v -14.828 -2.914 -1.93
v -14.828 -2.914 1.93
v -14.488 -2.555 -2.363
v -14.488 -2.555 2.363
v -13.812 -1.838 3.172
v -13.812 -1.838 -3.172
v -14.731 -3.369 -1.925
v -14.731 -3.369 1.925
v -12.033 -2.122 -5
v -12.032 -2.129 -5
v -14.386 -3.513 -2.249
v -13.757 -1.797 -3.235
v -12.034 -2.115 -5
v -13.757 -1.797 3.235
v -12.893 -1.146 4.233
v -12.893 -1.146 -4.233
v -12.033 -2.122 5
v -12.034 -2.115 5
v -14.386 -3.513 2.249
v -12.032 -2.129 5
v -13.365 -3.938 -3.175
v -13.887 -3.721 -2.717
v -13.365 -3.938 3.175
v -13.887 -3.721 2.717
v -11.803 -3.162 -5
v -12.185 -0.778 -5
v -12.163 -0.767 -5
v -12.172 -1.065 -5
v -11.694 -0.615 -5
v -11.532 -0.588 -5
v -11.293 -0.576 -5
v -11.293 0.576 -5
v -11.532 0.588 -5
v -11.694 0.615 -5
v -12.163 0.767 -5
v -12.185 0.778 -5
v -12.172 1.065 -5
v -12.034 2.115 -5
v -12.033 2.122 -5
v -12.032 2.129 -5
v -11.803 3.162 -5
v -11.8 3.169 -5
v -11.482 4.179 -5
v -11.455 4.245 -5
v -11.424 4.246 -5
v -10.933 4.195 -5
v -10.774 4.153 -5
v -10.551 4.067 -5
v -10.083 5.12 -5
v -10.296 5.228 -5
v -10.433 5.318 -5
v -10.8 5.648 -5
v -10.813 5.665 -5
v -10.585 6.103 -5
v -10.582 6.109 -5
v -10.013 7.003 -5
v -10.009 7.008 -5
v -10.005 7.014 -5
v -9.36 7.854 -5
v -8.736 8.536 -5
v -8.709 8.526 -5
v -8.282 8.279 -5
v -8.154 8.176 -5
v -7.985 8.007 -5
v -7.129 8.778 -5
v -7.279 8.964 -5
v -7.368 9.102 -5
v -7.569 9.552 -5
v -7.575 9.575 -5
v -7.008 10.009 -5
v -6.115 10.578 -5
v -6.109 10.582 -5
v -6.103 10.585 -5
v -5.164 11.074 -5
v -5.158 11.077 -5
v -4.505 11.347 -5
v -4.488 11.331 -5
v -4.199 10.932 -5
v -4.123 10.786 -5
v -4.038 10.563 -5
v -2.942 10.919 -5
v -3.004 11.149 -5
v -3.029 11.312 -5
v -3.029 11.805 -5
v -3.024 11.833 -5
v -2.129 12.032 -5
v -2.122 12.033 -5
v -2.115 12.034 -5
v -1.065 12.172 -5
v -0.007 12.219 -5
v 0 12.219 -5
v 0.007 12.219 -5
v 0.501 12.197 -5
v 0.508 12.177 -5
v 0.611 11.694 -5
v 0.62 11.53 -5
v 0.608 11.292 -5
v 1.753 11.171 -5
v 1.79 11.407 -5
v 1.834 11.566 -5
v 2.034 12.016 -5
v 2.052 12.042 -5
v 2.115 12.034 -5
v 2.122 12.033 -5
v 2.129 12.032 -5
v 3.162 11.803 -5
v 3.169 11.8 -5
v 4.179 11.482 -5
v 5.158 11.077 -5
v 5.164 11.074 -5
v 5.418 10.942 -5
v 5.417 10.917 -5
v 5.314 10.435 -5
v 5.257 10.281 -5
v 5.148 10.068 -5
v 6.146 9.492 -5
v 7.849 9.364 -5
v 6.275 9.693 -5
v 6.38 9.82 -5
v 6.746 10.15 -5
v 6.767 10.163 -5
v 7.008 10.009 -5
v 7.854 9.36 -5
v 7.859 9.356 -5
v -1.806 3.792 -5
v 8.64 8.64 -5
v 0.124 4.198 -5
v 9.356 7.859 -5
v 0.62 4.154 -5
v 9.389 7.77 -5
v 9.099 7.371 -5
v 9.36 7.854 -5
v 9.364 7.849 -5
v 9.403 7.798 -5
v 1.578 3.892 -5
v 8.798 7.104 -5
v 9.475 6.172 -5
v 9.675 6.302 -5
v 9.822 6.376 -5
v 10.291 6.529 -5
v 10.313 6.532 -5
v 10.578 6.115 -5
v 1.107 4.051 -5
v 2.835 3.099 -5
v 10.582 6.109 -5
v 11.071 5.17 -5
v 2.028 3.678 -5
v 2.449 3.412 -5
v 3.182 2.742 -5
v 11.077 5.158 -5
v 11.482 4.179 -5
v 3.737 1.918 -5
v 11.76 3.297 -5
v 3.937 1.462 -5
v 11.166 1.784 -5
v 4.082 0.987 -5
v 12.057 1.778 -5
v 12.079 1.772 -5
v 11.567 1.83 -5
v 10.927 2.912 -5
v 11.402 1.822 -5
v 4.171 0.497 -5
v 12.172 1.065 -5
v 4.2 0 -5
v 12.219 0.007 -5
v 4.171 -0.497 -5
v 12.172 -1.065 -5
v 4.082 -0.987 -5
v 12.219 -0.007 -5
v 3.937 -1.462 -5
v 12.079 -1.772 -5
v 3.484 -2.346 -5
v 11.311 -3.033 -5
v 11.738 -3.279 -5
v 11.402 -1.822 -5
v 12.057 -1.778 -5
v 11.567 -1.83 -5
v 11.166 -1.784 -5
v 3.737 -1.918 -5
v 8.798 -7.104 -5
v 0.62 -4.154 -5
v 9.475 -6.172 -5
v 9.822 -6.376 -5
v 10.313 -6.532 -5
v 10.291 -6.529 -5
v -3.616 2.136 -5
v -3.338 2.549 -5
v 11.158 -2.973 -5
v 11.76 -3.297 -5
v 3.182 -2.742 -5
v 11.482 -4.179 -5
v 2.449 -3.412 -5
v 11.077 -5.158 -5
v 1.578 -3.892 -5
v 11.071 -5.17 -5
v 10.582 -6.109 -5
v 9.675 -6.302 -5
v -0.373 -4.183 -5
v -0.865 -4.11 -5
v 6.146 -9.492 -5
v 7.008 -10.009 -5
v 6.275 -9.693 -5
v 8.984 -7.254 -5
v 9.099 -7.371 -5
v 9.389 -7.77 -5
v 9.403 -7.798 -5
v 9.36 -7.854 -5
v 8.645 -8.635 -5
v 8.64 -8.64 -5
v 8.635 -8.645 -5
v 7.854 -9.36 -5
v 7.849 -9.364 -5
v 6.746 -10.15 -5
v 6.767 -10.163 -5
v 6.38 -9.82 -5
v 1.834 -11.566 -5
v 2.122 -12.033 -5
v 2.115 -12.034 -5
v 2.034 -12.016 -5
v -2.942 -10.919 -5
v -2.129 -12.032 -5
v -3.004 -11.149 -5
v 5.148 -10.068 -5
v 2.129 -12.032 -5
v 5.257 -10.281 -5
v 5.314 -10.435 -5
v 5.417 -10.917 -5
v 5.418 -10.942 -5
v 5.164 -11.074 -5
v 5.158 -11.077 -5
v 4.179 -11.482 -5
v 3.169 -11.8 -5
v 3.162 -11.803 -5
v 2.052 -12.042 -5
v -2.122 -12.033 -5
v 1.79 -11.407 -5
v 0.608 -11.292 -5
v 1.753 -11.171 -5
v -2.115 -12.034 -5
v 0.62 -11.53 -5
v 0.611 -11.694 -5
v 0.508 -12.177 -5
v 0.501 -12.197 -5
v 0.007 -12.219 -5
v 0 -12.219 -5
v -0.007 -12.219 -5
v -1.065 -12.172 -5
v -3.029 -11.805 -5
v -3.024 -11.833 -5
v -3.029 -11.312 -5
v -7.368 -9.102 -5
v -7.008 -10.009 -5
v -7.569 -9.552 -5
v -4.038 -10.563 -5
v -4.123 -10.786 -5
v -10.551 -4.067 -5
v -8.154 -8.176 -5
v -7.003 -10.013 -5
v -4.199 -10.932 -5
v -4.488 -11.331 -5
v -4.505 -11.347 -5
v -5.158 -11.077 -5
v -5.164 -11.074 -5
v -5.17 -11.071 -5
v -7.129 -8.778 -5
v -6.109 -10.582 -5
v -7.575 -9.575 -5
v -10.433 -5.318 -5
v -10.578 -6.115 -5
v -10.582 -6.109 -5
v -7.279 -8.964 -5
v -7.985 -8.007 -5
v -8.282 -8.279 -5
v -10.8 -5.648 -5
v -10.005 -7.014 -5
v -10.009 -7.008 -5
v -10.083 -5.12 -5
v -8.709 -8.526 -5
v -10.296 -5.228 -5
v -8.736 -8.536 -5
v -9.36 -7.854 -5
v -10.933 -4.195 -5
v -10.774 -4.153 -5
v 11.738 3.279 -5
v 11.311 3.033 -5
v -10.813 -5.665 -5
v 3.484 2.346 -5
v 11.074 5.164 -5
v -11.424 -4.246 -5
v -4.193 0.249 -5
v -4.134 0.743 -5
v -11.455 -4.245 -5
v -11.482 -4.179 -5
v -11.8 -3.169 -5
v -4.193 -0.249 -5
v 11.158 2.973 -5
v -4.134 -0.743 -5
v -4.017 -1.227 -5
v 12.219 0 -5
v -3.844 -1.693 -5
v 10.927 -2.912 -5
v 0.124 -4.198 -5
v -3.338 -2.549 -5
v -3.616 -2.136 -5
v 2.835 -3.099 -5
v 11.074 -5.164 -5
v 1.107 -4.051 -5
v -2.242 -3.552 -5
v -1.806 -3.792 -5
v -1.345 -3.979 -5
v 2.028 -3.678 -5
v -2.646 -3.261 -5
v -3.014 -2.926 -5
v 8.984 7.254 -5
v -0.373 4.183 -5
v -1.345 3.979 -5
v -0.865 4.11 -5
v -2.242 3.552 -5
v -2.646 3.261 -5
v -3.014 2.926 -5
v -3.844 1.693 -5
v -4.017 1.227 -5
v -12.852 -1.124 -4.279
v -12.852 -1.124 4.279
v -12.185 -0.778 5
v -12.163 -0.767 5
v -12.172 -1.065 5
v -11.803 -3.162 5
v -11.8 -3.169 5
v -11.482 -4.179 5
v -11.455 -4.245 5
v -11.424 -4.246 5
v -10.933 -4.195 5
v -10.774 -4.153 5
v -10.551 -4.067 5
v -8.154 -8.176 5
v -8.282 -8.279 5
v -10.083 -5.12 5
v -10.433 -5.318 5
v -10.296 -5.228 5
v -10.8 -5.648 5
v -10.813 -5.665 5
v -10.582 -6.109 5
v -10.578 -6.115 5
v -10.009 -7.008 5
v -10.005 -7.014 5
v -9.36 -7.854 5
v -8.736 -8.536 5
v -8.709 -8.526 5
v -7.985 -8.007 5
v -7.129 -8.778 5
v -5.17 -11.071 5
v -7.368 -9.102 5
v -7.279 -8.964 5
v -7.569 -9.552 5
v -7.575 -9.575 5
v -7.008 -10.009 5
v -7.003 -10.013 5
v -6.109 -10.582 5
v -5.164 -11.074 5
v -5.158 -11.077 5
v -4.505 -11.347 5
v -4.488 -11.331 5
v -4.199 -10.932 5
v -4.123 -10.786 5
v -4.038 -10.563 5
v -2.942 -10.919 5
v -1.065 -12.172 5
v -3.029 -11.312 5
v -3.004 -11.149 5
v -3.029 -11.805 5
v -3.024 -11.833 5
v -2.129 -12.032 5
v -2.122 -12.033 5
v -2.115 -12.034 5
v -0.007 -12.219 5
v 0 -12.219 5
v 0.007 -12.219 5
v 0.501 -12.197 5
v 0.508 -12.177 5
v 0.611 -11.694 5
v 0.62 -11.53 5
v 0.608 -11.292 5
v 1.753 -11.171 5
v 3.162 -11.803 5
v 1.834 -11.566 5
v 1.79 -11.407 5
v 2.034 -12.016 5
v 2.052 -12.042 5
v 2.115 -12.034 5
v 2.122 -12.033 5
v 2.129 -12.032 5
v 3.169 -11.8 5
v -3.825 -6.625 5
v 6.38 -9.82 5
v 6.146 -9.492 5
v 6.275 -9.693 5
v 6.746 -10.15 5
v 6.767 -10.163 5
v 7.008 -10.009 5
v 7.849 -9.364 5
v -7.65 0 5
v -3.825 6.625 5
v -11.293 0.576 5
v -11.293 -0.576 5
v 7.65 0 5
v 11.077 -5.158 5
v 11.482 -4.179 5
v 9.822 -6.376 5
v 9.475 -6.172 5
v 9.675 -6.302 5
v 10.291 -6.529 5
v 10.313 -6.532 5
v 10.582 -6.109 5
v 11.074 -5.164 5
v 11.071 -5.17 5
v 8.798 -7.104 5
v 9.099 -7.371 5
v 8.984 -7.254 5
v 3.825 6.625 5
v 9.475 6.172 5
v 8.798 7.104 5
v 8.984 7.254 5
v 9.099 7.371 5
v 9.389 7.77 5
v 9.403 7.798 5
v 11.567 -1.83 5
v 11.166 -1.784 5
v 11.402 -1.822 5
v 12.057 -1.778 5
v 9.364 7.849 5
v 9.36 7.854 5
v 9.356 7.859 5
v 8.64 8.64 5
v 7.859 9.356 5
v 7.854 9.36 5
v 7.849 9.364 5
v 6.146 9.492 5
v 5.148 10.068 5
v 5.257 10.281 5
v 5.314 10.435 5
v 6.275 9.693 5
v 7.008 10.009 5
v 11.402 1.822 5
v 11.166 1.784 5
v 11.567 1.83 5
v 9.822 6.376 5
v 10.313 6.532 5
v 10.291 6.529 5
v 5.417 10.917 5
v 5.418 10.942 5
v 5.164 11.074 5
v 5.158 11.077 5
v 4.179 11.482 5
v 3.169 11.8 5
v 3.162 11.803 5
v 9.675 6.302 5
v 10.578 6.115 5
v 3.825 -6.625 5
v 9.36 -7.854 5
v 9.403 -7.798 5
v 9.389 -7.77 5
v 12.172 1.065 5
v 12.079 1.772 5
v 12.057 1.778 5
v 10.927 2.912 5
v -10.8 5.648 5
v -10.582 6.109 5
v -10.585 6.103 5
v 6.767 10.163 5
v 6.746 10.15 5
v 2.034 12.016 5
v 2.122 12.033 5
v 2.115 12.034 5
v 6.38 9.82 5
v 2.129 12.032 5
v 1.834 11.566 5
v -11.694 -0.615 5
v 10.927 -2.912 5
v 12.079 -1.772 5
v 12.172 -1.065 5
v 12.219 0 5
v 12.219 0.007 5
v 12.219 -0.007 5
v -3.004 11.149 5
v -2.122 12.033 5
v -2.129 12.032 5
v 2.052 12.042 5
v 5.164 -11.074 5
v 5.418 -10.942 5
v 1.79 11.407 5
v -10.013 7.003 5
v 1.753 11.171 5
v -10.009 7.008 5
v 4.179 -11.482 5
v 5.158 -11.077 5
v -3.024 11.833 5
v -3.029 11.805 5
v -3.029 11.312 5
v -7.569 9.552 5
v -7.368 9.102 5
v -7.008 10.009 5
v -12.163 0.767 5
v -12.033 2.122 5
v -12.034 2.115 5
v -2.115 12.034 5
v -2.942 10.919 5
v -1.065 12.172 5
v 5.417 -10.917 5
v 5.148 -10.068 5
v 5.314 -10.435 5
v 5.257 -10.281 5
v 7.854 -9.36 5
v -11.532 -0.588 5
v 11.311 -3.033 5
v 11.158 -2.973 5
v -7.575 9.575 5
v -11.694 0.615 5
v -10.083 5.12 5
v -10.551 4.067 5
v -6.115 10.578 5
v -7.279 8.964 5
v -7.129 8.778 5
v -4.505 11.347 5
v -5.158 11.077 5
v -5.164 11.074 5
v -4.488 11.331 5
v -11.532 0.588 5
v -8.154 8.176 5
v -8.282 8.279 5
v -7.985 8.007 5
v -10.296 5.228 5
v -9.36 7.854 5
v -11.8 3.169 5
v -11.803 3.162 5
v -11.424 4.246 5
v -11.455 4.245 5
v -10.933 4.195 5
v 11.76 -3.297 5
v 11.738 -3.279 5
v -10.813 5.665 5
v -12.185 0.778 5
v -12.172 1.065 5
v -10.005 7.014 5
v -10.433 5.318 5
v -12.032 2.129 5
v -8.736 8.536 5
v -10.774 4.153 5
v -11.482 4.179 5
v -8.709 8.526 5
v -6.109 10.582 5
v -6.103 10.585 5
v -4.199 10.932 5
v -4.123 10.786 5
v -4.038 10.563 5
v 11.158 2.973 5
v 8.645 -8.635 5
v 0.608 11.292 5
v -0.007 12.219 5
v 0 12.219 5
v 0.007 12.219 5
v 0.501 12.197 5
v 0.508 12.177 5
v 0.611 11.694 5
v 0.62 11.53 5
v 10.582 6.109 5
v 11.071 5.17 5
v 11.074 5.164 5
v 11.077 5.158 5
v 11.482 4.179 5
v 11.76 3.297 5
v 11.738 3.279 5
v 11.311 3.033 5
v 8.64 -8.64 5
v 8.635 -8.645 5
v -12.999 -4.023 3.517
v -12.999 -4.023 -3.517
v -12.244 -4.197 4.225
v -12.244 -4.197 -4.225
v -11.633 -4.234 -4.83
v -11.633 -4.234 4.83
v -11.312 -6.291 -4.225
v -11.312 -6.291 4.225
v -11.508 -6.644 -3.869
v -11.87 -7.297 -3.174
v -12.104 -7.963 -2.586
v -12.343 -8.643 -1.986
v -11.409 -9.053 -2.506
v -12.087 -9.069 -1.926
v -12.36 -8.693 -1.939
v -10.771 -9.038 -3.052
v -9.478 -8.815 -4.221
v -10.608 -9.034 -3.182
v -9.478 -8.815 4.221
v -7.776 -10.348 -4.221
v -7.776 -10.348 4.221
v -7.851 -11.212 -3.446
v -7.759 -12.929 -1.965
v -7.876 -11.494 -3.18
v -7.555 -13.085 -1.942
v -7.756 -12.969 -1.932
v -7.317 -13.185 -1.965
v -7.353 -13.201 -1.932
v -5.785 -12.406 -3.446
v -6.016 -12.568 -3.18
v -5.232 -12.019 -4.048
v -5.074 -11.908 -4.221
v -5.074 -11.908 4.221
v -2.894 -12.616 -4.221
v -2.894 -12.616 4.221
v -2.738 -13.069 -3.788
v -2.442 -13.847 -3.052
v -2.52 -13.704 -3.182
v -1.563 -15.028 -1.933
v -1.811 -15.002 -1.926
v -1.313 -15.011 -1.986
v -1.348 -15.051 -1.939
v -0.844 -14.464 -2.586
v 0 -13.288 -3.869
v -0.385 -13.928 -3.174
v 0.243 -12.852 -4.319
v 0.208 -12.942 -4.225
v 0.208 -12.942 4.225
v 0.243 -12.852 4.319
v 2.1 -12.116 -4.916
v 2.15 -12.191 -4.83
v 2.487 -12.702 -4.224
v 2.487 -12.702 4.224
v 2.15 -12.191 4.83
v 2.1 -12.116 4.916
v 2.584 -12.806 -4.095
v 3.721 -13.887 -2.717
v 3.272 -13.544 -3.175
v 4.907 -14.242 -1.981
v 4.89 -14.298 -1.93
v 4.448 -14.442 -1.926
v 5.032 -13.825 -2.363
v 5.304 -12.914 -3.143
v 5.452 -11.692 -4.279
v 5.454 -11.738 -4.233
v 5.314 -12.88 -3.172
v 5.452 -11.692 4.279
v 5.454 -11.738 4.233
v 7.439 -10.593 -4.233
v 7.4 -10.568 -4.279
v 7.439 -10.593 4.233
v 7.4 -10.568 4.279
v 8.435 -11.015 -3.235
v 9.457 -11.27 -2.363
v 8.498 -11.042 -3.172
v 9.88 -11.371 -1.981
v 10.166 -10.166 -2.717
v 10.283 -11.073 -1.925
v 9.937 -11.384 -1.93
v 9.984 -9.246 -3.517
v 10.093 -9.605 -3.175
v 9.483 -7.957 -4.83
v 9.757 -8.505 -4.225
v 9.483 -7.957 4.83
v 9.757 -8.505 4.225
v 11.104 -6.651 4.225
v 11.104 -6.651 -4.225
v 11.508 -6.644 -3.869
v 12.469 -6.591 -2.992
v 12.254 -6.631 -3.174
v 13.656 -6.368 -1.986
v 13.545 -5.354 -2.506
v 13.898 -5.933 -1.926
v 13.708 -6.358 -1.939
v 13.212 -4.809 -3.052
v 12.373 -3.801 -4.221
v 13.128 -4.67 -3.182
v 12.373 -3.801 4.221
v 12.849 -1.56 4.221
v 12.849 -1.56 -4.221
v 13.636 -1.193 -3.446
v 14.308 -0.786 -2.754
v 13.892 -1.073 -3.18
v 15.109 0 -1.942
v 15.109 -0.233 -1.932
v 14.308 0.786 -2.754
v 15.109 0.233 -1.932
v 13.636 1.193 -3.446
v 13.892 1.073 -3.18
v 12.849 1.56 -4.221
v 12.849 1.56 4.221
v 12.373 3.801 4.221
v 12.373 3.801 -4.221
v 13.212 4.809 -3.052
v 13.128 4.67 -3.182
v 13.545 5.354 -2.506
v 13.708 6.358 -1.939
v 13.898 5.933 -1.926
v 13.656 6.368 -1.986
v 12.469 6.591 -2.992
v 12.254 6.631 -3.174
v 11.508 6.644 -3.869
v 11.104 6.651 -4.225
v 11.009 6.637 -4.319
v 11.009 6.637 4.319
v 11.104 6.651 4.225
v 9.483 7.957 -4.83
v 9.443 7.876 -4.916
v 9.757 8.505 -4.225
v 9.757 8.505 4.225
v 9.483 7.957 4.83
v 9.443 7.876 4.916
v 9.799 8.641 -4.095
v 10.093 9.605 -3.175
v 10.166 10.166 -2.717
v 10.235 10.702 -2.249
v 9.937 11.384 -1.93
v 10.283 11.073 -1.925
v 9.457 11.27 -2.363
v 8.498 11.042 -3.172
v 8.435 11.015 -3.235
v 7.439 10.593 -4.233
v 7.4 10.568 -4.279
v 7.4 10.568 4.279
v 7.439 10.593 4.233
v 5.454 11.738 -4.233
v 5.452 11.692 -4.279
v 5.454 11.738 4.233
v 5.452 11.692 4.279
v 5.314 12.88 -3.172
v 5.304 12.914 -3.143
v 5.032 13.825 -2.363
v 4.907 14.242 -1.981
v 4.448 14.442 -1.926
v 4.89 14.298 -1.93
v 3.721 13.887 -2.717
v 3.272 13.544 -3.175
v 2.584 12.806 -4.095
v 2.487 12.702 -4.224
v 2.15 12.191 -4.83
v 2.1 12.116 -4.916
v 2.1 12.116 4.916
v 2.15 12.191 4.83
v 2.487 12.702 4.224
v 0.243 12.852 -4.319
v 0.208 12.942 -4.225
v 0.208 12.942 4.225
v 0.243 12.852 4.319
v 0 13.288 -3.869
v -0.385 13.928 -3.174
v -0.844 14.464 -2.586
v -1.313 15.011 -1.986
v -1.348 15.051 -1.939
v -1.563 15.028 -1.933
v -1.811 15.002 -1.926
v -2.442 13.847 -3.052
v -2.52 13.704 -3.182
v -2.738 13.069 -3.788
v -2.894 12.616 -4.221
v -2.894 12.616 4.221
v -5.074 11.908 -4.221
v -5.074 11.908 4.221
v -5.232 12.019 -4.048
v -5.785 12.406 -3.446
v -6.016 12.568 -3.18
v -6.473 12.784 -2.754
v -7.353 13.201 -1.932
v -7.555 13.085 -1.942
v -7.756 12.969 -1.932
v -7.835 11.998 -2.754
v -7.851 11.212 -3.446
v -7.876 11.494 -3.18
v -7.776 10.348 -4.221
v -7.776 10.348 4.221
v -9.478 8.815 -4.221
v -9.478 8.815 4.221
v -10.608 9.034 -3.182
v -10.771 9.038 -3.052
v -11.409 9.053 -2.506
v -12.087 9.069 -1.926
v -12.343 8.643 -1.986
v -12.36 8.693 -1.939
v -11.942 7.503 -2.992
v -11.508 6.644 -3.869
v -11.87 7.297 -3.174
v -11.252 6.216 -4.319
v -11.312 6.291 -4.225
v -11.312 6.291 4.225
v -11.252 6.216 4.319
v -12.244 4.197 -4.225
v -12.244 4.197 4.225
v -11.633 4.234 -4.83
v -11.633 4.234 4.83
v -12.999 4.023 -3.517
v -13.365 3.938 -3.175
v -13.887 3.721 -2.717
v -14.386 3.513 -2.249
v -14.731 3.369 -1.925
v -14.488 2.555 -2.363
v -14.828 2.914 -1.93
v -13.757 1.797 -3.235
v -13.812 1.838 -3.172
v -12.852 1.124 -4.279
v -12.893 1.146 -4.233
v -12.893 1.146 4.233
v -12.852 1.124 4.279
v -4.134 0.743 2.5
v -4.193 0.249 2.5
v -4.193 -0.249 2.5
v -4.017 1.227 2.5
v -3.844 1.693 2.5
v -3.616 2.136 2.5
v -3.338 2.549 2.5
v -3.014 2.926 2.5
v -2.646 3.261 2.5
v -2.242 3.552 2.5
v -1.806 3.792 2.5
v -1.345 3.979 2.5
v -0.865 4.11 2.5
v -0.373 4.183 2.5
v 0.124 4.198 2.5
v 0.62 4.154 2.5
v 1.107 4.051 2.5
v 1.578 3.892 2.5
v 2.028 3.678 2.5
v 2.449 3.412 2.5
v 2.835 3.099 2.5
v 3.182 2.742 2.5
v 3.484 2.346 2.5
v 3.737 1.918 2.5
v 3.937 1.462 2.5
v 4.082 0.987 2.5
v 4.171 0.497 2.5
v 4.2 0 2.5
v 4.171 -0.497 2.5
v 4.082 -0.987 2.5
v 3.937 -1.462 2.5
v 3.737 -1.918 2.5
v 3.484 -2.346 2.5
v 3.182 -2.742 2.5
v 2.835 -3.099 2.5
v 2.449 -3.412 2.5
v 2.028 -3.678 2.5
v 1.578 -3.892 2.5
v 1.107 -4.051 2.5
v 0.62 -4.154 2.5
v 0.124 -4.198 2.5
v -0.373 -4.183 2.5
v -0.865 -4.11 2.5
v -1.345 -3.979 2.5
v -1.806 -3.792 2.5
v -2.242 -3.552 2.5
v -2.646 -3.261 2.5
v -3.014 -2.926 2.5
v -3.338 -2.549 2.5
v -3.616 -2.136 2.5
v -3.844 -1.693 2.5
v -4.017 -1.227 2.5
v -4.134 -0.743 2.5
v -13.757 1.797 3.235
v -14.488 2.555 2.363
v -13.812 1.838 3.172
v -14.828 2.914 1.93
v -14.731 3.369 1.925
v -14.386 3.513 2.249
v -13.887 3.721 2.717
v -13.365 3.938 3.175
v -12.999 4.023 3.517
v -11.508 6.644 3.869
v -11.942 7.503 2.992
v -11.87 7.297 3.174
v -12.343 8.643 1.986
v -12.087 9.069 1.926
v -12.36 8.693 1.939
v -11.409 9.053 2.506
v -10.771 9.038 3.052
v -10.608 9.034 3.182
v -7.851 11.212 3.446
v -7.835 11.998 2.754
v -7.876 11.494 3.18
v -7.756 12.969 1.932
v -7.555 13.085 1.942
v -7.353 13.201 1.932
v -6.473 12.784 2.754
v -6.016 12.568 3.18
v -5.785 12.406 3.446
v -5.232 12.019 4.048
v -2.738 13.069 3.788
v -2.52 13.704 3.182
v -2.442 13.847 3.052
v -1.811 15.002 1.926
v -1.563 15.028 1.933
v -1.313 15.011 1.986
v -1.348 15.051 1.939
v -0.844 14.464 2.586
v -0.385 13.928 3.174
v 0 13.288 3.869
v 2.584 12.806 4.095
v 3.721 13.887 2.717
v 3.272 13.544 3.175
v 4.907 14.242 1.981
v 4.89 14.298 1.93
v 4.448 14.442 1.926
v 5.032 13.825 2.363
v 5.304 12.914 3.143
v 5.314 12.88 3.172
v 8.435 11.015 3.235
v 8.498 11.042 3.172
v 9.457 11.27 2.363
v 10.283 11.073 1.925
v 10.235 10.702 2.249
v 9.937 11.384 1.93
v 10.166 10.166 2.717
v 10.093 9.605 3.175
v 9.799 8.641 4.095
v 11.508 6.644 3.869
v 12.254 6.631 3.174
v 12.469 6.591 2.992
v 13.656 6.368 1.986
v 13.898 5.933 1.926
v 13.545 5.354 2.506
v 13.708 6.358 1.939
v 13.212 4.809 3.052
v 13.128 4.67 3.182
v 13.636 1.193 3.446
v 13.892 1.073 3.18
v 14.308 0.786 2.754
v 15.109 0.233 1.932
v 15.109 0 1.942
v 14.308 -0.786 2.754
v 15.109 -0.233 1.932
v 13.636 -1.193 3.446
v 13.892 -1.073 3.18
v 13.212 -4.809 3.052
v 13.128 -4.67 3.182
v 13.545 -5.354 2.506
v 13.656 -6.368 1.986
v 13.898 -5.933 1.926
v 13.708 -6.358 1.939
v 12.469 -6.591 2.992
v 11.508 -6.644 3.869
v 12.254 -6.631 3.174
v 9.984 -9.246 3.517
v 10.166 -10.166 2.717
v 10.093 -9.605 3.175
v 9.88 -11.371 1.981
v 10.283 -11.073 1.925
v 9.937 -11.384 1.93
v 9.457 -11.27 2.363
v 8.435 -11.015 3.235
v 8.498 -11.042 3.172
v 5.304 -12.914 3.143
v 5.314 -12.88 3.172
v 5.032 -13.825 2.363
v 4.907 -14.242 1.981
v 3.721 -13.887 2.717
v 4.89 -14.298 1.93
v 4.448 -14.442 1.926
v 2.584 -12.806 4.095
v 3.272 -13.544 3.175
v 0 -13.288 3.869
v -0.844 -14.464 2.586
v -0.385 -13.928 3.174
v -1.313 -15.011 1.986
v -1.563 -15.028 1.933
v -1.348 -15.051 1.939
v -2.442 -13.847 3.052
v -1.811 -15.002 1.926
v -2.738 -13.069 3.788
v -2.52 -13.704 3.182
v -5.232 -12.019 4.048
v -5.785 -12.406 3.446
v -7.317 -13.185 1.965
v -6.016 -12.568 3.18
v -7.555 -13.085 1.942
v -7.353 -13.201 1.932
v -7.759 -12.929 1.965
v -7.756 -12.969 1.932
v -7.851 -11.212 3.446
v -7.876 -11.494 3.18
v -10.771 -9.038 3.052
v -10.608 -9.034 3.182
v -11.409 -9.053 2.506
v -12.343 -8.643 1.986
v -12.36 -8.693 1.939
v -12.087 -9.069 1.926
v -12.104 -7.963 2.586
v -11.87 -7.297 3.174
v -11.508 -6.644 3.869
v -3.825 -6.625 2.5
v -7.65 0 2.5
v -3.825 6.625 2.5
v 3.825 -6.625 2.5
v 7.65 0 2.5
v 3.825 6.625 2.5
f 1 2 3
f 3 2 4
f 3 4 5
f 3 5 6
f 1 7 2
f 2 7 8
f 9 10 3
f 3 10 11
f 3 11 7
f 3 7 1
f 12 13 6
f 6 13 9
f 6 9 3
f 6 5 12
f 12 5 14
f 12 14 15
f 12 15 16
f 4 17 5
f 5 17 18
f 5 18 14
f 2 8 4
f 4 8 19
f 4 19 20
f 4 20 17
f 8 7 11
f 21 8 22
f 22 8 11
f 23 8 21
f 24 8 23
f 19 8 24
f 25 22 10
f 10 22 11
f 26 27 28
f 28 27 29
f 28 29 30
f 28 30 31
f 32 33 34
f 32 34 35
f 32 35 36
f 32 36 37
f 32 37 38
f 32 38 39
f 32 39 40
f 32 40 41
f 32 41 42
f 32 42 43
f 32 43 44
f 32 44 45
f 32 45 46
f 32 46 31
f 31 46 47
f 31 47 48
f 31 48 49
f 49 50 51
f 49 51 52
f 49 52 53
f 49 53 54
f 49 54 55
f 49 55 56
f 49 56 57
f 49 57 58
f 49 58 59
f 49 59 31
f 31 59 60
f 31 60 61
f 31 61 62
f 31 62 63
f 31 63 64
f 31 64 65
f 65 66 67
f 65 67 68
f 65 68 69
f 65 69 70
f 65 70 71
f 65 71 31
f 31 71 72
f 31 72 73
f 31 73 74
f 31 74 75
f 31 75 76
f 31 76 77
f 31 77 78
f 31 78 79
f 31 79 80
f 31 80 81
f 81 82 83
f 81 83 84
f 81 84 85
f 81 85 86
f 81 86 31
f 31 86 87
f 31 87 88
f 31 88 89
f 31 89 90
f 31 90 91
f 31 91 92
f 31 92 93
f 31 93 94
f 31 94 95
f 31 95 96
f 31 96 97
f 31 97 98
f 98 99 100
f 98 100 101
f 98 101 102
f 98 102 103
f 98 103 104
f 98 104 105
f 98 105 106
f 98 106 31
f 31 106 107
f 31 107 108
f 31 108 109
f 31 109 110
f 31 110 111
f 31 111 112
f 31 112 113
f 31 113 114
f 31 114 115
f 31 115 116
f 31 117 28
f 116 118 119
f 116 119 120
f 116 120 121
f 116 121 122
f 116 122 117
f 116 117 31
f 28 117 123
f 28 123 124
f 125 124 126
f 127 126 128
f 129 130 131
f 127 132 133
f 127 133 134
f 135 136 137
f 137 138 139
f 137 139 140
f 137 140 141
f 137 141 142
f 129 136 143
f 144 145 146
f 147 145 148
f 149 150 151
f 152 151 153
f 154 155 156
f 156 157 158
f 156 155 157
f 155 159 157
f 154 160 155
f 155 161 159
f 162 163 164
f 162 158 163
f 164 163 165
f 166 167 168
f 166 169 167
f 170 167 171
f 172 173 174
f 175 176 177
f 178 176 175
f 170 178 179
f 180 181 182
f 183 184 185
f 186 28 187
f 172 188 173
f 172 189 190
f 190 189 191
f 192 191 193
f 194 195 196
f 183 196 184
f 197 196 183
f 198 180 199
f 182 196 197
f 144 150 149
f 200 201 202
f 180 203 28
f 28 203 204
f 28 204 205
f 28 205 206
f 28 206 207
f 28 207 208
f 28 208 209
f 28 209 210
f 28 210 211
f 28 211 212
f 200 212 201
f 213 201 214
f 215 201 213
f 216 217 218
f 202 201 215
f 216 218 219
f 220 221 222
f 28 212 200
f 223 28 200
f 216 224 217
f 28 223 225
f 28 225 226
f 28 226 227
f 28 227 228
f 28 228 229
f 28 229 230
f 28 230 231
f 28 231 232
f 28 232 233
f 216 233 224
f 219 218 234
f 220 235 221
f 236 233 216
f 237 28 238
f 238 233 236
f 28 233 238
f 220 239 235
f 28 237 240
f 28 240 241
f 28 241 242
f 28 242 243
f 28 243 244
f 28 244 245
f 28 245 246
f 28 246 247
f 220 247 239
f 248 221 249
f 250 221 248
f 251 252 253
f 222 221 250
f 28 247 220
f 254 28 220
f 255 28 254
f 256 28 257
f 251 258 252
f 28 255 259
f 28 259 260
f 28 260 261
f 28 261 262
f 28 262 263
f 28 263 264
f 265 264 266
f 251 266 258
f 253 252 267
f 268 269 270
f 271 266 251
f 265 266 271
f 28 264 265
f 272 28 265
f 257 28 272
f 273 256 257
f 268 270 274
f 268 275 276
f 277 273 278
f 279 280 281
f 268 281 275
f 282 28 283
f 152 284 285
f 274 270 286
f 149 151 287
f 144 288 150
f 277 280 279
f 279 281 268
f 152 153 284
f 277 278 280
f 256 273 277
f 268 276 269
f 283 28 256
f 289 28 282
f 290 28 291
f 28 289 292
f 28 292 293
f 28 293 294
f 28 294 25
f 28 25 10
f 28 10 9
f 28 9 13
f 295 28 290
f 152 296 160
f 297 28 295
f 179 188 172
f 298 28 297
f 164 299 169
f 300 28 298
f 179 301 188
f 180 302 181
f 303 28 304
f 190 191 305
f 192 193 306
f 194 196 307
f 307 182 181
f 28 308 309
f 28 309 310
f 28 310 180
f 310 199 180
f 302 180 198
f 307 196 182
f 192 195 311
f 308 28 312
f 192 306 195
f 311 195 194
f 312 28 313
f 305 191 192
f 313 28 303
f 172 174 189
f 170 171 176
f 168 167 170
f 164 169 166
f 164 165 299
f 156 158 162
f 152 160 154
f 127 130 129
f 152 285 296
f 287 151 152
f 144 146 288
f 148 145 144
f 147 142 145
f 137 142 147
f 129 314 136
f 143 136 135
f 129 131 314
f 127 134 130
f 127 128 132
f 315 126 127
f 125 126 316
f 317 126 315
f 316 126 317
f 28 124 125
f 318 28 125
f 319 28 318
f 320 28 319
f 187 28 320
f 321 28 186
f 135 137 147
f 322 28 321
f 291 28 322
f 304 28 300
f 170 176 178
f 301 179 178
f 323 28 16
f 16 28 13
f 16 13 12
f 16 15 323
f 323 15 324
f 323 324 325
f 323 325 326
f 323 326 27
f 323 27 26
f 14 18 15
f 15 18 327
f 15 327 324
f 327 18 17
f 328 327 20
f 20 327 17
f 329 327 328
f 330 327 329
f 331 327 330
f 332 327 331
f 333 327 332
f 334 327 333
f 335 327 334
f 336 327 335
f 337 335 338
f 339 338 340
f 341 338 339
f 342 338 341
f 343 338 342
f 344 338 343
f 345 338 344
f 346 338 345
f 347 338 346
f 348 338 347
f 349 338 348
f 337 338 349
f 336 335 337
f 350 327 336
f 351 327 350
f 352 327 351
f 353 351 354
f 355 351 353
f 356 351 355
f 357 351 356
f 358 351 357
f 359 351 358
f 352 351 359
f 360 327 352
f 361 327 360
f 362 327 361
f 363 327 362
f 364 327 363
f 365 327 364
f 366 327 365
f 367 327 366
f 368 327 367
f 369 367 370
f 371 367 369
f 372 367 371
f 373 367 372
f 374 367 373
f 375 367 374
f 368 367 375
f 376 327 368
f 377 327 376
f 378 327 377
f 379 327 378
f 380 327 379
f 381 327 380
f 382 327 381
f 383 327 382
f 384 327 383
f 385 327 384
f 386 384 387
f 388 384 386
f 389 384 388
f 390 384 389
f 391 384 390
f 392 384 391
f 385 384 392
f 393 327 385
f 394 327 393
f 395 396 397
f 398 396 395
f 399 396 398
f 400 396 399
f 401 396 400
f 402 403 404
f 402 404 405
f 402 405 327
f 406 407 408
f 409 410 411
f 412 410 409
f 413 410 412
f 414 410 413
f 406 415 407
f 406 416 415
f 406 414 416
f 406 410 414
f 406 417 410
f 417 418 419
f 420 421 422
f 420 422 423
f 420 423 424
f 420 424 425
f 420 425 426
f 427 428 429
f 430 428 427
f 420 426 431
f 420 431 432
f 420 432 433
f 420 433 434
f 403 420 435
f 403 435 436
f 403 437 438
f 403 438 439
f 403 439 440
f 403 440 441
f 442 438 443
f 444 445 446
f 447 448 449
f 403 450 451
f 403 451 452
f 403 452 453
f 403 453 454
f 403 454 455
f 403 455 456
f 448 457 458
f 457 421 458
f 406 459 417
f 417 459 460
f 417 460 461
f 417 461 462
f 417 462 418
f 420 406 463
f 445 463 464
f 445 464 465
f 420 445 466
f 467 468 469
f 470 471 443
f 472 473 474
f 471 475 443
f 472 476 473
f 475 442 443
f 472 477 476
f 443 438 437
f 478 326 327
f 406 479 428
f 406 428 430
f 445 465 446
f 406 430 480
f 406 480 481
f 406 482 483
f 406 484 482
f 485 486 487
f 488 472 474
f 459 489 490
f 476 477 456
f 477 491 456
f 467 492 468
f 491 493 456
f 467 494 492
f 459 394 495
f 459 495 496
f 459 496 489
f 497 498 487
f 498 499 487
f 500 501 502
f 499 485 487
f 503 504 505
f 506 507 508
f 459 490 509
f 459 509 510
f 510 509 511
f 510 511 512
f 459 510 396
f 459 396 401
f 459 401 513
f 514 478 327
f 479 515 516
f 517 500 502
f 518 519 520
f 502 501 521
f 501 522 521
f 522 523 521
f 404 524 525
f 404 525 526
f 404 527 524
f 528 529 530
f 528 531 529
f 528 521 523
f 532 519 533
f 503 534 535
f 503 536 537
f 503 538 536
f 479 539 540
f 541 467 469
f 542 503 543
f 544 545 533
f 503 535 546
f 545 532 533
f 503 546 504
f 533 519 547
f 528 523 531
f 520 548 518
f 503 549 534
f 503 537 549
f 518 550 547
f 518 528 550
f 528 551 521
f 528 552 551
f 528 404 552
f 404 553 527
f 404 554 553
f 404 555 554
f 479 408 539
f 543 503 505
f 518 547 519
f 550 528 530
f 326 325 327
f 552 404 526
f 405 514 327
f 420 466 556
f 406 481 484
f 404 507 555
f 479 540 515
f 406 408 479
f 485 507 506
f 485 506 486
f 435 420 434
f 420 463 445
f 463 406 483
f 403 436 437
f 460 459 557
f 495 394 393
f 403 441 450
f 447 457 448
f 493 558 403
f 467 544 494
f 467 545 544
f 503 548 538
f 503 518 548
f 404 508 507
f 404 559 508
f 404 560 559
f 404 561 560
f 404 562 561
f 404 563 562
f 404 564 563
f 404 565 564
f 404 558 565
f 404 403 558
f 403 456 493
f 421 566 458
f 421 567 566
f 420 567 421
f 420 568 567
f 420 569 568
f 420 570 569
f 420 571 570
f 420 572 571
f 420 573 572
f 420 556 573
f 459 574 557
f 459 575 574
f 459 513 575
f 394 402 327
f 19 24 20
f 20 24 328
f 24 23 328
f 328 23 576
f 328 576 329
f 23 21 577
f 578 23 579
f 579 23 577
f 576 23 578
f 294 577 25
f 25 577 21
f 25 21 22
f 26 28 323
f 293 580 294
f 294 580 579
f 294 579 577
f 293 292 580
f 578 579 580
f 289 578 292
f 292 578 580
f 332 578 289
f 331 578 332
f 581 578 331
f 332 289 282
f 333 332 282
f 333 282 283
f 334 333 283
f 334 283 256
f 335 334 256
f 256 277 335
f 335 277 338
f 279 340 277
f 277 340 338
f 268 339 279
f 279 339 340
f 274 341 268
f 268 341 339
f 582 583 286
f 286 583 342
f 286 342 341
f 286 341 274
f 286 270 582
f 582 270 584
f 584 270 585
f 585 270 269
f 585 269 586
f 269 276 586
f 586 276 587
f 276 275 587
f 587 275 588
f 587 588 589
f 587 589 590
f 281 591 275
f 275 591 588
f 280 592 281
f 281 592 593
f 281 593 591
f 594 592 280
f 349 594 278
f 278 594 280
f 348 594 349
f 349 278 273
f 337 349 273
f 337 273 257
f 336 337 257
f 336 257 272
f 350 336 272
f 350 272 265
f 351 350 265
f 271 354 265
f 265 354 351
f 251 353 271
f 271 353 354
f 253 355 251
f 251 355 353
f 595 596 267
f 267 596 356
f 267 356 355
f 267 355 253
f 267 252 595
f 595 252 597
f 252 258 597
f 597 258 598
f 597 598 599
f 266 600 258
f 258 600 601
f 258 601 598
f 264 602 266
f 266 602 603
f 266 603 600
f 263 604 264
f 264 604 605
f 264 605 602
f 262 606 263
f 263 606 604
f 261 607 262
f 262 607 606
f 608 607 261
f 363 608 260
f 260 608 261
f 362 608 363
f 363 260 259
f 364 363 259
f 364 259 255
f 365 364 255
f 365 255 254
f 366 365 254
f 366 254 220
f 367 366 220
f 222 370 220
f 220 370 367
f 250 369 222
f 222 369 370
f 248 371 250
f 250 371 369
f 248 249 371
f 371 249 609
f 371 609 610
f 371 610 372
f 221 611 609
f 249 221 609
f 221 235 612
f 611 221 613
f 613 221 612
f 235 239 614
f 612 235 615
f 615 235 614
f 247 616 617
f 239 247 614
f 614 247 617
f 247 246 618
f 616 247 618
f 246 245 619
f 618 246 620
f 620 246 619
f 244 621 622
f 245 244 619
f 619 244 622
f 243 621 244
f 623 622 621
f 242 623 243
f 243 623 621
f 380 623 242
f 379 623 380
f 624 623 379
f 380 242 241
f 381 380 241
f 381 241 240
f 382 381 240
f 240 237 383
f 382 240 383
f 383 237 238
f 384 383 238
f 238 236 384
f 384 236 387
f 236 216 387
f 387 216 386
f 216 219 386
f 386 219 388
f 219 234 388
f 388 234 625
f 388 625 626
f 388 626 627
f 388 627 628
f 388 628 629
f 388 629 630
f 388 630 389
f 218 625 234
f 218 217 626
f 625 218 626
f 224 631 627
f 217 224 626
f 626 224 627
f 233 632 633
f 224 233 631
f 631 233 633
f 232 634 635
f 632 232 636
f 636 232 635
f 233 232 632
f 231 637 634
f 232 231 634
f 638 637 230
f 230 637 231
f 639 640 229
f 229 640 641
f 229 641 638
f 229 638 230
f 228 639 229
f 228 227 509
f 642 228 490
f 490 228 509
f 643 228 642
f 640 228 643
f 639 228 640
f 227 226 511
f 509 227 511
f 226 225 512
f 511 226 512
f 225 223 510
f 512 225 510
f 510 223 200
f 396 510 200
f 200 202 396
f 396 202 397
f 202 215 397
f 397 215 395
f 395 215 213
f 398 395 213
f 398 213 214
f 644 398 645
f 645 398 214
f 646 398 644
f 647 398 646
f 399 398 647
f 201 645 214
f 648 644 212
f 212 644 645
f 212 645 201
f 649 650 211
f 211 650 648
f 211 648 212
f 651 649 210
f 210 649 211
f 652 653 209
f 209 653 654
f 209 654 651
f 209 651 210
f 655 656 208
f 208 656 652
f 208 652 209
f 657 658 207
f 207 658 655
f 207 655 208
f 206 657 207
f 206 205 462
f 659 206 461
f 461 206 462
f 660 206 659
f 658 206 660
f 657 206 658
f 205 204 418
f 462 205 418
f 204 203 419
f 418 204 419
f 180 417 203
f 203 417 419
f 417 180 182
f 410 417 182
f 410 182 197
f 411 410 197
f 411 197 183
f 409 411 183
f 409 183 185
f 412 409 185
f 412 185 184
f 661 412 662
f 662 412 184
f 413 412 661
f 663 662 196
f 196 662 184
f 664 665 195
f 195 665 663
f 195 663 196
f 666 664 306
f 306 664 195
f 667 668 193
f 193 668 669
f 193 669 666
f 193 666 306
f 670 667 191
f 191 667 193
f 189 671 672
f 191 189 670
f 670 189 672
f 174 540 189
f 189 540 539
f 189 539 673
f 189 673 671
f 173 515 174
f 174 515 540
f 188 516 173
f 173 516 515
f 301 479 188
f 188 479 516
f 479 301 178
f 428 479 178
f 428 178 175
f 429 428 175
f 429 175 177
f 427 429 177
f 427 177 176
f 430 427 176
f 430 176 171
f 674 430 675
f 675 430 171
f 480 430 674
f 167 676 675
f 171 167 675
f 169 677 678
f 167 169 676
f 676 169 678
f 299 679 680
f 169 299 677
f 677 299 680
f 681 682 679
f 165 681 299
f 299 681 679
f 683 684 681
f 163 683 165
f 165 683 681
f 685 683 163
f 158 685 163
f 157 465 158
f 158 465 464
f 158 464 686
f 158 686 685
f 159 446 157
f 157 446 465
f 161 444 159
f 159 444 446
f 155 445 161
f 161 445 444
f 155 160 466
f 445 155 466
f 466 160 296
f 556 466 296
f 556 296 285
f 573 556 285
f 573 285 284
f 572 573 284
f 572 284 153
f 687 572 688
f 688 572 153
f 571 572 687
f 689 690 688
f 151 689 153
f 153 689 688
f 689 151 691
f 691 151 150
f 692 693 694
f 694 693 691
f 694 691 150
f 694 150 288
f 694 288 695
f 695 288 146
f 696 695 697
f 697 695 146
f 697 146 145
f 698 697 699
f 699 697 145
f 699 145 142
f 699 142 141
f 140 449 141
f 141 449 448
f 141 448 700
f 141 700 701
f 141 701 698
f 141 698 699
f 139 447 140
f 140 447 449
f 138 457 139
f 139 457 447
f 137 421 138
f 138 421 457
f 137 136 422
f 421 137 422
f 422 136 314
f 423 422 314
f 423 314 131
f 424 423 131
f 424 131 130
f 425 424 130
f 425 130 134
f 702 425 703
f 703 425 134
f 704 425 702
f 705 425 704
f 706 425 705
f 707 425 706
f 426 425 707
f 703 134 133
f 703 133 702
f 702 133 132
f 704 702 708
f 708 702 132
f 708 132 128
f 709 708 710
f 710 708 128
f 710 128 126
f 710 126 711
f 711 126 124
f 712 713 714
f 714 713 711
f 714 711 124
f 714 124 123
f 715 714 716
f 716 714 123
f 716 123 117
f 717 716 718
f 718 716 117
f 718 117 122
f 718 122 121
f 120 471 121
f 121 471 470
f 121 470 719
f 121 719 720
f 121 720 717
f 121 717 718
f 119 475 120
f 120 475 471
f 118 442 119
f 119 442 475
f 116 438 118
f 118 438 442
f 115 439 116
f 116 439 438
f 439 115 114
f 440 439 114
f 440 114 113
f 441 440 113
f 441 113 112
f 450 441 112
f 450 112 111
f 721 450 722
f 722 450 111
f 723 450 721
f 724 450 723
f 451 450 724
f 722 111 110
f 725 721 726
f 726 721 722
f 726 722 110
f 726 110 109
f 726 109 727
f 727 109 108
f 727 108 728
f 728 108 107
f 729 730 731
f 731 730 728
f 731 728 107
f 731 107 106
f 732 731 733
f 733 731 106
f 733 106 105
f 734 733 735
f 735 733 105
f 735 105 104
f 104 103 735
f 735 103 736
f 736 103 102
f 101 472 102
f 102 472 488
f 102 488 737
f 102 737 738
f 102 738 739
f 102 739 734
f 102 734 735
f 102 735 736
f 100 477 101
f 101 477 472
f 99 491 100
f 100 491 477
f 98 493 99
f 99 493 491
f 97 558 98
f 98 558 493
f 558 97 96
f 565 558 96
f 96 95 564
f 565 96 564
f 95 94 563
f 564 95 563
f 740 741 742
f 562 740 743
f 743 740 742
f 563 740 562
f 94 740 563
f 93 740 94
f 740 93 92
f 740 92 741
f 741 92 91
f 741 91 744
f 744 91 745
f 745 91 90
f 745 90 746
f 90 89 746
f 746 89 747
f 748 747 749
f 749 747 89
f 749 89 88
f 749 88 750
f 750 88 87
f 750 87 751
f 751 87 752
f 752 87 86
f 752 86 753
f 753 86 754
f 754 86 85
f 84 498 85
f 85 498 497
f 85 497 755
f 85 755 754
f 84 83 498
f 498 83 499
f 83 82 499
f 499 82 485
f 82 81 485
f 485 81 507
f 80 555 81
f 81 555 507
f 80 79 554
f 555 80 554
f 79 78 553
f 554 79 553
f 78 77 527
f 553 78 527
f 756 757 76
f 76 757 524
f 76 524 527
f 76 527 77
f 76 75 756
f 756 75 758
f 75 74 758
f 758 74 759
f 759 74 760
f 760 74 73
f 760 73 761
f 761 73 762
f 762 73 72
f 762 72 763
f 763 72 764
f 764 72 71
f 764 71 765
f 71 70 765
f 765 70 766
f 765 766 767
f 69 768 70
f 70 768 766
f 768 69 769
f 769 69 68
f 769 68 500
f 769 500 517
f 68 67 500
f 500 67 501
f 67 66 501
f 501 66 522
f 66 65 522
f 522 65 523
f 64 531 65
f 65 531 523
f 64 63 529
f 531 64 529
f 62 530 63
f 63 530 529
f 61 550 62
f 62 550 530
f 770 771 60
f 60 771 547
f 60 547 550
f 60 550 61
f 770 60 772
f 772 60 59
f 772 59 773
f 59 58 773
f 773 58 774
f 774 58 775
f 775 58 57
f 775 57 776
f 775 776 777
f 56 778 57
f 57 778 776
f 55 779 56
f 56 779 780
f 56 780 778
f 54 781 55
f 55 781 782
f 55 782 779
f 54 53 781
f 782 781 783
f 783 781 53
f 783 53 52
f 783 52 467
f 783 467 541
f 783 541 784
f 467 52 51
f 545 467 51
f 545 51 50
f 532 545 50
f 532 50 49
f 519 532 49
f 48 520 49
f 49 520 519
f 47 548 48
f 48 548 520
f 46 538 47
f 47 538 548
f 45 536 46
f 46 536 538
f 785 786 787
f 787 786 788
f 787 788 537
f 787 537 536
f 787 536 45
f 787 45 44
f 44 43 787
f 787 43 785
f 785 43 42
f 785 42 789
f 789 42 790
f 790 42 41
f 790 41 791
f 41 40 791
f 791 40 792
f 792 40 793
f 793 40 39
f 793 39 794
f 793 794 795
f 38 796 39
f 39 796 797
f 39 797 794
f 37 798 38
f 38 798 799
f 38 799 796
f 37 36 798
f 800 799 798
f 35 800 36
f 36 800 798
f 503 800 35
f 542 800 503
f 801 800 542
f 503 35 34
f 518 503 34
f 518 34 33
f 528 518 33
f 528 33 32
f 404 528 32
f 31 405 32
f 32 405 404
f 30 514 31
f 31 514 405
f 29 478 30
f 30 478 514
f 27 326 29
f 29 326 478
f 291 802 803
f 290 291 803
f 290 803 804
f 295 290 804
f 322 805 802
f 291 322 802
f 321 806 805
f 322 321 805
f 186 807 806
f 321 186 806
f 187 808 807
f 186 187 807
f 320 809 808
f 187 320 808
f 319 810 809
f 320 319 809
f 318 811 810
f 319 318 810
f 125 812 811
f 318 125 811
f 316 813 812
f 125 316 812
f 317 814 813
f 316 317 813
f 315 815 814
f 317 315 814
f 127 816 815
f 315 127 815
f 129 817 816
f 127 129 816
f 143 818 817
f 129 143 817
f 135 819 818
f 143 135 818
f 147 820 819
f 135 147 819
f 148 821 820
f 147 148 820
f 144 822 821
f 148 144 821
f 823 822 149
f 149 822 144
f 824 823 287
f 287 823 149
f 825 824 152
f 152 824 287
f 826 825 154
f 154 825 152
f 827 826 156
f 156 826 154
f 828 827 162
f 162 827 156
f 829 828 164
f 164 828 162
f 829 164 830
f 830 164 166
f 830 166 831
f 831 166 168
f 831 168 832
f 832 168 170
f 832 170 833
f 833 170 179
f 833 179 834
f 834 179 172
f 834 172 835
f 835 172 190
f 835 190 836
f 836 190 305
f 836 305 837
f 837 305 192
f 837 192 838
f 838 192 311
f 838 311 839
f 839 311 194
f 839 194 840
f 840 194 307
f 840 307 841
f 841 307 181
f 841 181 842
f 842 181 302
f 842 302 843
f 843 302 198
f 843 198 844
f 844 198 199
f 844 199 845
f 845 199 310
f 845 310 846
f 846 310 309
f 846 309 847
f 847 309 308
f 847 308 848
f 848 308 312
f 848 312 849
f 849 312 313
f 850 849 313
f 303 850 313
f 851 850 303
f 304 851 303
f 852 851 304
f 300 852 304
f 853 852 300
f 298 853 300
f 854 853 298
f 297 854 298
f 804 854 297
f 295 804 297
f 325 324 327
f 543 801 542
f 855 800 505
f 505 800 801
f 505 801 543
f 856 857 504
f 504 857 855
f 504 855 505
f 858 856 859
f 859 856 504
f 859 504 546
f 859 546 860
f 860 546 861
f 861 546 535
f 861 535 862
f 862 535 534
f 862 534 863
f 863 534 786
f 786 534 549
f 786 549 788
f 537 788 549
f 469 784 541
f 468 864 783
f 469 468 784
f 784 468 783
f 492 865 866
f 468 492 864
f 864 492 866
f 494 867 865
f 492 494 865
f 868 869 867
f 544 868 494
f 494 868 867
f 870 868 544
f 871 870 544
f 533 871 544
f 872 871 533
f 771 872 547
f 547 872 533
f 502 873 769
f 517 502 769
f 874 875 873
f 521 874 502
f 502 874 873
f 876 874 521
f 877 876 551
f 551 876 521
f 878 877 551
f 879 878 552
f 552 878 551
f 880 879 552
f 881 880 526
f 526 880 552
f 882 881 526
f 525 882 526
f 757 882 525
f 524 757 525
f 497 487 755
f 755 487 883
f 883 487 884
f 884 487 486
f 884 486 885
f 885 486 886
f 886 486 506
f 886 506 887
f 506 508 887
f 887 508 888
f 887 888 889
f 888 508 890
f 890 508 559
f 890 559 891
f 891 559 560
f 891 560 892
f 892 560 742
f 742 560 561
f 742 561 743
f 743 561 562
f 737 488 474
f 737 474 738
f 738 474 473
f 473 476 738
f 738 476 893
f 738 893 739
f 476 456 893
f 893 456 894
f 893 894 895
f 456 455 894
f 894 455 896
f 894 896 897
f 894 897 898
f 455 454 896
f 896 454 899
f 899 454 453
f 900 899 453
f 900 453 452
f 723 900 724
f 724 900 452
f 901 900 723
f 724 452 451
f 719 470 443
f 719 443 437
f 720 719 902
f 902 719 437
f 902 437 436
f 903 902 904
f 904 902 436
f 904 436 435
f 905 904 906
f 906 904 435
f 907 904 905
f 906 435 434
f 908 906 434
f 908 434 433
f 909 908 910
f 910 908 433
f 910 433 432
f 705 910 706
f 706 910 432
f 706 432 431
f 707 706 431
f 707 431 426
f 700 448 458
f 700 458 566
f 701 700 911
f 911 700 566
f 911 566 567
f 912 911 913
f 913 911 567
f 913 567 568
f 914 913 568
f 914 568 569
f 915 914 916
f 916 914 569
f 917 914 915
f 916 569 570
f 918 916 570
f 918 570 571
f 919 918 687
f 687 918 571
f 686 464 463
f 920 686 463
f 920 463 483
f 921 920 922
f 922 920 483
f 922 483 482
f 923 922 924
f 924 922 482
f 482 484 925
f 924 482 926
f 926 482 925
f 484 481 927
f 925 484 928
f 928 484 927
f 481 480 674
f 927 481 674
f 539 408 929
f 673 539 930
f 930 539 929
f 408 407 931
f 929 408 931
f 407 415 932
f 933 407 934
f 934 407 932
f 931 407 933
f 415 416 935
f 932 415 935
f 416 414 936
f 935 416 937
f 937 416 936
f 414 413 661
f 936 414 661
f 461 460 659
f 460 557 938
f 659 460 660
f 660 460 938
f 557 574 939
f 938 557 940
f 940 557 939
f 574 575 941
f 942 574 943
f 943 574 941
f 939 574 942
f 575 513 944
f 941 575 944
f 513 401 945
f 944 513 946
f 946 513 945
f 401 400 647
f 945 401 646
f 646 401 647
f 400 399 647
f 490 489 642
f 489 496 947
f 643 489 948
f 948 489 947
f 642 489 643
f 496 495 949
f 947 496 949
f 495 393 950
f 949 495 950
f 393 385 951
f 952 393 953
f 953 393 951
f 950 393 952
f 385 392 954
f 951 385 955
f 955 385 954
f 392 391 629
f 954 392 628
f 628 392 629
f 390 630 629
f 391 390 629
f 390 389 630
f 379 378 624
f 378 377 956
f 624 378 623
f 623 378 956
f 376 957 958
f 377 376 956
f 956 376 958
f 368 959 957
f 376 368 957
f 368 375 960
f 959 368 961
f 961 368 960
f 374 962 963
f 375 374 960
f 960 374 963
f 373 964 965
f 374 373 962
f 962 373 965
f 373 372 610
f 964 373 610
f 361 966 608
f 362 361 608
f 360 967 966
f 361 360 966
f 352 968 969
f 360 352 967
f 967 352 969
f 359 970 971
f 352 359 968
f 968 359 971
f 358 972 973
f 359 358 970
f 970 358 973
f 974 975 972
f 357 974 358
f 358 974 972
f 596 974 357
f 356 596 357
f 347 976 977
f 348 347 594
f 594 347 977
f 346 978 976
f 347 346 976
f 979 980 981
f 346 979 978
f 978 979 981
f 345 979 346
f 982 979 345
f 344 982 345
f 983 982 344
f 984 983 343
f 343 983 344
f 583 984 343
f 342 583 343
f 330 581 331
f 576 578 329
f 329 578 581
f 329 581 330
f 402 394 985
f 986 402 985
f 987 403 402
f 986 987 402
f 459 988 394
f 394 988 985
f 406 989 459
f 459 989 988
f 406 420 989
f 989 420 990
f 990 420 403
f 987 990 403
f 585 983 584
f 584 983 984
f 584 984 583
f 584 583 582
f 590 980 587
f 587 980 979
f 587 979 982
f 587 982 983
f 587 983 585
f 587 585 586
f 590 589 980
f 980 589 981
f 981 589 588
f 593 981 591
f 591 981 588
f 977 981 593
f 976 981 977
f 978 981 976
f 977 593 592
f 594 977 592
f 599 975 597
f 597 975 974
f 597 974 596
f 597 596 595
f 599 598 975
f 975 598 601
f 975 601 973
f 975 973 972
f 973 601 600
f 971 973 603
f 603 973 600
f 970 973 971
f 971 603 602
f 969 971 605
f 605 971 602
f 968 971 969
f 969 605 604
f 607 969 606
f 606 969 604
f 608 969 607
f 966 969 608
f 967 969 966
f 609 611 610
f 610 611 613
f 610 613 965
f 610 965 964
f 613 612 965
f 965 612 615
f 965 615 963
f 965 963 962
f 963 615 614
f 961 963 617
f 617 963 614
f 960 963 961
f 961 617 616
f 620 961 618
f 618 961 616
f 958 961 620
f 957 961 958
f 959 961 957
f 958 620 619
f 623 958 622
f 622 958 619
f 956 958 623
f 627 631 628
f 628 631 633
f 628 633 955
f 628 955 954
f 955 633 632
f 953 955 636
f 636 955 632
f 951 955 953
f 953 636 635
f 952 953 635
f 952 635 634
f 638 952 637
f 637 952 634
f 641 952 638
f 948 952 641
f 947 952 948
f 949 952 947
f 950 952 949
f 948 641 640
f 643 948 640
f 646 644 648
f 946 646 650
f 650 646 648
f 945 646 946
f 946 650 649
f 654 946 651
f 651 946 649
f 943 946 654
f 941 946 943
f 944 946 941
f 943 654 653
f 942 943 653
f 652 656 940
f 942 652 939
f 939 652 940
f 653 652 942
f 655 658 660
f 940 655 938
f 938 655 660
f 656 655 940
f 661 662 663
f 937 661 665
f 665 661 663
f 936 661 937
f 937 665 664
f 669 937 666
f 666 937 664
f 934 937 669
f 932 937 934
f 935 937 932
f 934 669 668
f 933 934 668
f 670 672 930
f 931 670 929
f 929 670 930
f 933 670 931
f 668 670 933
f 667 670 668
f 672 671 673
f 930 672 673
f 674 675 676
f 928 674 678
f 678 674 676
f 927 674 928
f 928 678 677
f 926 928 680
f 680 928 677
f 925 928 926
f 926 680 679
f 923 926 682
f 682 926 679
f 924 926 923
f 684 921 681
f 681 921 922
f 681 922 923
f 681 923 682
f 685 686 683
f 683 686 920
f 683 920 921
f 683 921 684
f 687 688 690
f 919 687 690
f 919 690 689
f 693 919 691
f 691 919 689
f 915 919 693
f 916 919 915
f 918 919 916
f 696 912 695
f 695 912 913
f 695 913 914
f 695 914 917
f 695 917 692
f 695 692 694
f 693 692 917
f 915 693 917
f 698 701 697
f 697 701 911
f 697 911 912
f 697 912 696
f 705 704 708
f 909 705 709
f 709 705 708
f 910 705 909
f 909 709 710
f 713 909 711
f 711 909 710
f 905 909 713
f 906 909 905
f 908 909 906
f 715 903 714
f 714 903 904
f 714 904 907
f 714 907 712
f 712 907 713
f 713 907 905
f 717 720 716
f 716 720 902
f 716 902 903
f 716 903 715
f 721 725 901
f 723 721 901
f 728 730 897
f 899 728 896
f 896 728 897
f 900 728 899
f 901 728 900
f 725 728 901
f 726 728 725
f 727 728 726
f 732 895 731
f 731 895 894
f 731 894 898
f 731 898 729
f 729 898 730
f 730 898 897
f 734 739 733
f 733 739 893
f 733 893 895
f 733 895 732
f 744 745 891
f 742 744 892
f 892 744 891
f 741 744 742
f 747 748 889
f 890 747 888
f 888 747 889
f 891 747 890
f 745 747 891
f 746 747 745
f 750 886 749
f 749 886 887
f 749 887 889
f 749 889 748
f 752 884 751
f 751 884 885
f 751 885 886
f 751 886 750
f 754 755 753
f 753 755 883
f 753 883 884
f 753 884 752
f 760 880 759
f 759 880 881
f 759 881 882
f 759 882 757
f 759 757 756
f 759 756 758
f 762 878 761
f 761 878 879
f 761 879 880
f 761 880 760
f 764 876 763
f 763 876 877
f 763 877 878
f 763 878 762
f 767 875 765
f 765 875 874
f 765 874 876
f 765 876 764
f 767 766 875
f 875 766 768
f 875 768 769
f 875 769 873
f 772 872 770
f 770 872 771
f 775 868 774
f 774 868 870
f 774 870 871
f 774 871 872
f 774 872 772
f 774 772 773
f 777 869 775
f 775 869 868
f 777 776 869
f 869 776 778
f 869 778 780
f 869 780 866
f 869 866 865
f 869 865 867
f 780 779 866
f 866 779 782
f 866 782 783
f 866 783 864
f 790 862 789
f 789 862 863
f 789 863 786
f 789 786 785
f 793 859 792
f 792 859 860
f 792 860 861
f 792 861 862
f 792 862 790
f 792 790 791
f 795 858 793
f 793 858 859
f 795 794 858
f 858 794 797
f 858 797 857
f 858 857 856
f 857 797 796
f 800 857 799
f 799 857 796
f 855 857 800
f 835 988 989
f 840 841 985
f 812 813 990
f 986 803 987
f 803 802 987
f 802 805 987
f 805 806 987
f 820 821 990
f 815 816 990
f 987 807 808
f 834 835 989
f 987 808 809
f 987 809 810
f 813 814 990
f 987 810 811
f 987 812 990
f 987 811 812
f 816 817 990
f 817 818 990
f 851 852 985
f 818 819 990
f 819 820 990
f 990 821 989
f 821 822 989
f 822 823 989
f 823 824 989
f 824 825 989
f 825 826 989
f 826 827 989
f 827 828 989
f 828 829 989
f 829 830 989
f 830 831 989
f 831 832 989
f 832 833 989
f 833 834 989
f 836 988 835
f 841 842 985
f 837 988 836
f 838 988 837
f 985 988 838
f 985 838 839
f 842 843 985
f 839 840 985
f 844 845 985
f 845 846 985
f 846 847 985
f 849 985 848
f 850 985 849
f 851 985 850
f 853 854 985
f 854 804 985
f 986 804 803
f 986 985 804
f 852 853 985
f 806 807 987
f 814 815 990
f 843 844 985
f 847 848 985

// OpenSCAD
/* Derived by Carlosgs from:
 * http://www.thingiverse.com/thing:12789
 * An extruder gear set for the TechZone Huxley,
 *	featuring Herringbone teeth.
 * You will have to recalibrate your E_STEPS_PER_MM in
 *	your firmware (ratio changing from original techzone
 *	lasercut gears).
 * This use 2 modules from the MCAD library that you can
 *	get from https://github.com/elmom/MCAD.
 * 
 * Part - the motor gear mount hub with set screw hole -
 *	derived from http://www.thingiverse.com/thing:3104
 *	(thanks GilesBathgate) which is under GPL CC license.
 *
 * Copyright (C) 2011	Guy 'DeuxVis' P.
 *
 * This program is free software; you can redistribute it and/or
 * modify it under the terms of the GNU General Public License
 * as published by the Free Software Foundation; either version 2
 * of the License, or (at your option) any later version.
 * 
 * This program is distributed in the hope that it will be useful,
 * but WITHOUT ANY WARRANTY; without even the implied warranty of
 * MERCHANTABILITY or FITNESS FOR A PARTICULAR PURPOSE.	See the
 * GNU General Public License for more details.

 * You should have received a copy of the GNU General Public License
 * along with this program; if not, write to the Free Software
 * Foundation, Inc., 51 Franklin Street, Fifth Floor, Boston, MA	02110-1301, USA.
 * -- 
 *		 DeuxVis - device@ymail.com */

include <MCAD/involute_gears.scad>

M8_nut_diameter = 15.3;
nut_separation = 5;

SmallGear_N_Teeth = 15;
M8_rod_diam = 8.4;

// Increase the resolution of default shapes
$fa = 5; // Minimum angle for fragments [degrees]
$fs = 0.5; // Minimum fragment size [mm]

/* Herringbone gear module, adapted from MCAD/involute_gears */
module herringbone_gear( teeth=12, circles=0, shaft=5 ) {
	twist=0;//100;
	height=10;
	pressure_angle=30;

	diam = teeth*2;
	
	truncation_length = 2.8;
	truncation_height = height/2.5;

	module myGear() {
		difference() {
			gear(
				number_of_teeth=teeth,
				circular_pitch=320,
				pressure_angle=pressure_angle,
				clearance = 0.2,
				gear_thickness = height/2,
				rim_thickness = height/2,
				rim_width = 1,
				hub_thickness = height/2,
				hub_diameter=1,
				bore_diameter=shaft,
				circles=circles,
				twist=twist/teeth
			);
			mirror([0,0,1]) translate([0,0,-height/2-0.01]) {
				difference() {
					cylinder(r=diam/2+1, h=truncation_height);
					translate([0,0,-0.01])
						cylinder(r1=diam/2-truncation_length, r2=diam/2+1, h=truncation_height+0.02);
				}
			}
		}
	}
	
	myGear();
	mirror( [0,0,1] )
		myGear();
}

module cyclone_rod_gear(with_extra_parts=false, exploded=false) {
// Extruder Gear
difference() {
	union() {
		//gear
		rotate([180,0,0]) herringbone_gear( teeth=SmallGear_N_Teeth, circles=0, shaft=M8_rod_diam);
	}

	translate( [0, 0, (nut_separation/2)] ) cylinder( r=M8_nut_diameter/2, h=7, $fn=6 );
}
}

cyclone_rod_gear();
